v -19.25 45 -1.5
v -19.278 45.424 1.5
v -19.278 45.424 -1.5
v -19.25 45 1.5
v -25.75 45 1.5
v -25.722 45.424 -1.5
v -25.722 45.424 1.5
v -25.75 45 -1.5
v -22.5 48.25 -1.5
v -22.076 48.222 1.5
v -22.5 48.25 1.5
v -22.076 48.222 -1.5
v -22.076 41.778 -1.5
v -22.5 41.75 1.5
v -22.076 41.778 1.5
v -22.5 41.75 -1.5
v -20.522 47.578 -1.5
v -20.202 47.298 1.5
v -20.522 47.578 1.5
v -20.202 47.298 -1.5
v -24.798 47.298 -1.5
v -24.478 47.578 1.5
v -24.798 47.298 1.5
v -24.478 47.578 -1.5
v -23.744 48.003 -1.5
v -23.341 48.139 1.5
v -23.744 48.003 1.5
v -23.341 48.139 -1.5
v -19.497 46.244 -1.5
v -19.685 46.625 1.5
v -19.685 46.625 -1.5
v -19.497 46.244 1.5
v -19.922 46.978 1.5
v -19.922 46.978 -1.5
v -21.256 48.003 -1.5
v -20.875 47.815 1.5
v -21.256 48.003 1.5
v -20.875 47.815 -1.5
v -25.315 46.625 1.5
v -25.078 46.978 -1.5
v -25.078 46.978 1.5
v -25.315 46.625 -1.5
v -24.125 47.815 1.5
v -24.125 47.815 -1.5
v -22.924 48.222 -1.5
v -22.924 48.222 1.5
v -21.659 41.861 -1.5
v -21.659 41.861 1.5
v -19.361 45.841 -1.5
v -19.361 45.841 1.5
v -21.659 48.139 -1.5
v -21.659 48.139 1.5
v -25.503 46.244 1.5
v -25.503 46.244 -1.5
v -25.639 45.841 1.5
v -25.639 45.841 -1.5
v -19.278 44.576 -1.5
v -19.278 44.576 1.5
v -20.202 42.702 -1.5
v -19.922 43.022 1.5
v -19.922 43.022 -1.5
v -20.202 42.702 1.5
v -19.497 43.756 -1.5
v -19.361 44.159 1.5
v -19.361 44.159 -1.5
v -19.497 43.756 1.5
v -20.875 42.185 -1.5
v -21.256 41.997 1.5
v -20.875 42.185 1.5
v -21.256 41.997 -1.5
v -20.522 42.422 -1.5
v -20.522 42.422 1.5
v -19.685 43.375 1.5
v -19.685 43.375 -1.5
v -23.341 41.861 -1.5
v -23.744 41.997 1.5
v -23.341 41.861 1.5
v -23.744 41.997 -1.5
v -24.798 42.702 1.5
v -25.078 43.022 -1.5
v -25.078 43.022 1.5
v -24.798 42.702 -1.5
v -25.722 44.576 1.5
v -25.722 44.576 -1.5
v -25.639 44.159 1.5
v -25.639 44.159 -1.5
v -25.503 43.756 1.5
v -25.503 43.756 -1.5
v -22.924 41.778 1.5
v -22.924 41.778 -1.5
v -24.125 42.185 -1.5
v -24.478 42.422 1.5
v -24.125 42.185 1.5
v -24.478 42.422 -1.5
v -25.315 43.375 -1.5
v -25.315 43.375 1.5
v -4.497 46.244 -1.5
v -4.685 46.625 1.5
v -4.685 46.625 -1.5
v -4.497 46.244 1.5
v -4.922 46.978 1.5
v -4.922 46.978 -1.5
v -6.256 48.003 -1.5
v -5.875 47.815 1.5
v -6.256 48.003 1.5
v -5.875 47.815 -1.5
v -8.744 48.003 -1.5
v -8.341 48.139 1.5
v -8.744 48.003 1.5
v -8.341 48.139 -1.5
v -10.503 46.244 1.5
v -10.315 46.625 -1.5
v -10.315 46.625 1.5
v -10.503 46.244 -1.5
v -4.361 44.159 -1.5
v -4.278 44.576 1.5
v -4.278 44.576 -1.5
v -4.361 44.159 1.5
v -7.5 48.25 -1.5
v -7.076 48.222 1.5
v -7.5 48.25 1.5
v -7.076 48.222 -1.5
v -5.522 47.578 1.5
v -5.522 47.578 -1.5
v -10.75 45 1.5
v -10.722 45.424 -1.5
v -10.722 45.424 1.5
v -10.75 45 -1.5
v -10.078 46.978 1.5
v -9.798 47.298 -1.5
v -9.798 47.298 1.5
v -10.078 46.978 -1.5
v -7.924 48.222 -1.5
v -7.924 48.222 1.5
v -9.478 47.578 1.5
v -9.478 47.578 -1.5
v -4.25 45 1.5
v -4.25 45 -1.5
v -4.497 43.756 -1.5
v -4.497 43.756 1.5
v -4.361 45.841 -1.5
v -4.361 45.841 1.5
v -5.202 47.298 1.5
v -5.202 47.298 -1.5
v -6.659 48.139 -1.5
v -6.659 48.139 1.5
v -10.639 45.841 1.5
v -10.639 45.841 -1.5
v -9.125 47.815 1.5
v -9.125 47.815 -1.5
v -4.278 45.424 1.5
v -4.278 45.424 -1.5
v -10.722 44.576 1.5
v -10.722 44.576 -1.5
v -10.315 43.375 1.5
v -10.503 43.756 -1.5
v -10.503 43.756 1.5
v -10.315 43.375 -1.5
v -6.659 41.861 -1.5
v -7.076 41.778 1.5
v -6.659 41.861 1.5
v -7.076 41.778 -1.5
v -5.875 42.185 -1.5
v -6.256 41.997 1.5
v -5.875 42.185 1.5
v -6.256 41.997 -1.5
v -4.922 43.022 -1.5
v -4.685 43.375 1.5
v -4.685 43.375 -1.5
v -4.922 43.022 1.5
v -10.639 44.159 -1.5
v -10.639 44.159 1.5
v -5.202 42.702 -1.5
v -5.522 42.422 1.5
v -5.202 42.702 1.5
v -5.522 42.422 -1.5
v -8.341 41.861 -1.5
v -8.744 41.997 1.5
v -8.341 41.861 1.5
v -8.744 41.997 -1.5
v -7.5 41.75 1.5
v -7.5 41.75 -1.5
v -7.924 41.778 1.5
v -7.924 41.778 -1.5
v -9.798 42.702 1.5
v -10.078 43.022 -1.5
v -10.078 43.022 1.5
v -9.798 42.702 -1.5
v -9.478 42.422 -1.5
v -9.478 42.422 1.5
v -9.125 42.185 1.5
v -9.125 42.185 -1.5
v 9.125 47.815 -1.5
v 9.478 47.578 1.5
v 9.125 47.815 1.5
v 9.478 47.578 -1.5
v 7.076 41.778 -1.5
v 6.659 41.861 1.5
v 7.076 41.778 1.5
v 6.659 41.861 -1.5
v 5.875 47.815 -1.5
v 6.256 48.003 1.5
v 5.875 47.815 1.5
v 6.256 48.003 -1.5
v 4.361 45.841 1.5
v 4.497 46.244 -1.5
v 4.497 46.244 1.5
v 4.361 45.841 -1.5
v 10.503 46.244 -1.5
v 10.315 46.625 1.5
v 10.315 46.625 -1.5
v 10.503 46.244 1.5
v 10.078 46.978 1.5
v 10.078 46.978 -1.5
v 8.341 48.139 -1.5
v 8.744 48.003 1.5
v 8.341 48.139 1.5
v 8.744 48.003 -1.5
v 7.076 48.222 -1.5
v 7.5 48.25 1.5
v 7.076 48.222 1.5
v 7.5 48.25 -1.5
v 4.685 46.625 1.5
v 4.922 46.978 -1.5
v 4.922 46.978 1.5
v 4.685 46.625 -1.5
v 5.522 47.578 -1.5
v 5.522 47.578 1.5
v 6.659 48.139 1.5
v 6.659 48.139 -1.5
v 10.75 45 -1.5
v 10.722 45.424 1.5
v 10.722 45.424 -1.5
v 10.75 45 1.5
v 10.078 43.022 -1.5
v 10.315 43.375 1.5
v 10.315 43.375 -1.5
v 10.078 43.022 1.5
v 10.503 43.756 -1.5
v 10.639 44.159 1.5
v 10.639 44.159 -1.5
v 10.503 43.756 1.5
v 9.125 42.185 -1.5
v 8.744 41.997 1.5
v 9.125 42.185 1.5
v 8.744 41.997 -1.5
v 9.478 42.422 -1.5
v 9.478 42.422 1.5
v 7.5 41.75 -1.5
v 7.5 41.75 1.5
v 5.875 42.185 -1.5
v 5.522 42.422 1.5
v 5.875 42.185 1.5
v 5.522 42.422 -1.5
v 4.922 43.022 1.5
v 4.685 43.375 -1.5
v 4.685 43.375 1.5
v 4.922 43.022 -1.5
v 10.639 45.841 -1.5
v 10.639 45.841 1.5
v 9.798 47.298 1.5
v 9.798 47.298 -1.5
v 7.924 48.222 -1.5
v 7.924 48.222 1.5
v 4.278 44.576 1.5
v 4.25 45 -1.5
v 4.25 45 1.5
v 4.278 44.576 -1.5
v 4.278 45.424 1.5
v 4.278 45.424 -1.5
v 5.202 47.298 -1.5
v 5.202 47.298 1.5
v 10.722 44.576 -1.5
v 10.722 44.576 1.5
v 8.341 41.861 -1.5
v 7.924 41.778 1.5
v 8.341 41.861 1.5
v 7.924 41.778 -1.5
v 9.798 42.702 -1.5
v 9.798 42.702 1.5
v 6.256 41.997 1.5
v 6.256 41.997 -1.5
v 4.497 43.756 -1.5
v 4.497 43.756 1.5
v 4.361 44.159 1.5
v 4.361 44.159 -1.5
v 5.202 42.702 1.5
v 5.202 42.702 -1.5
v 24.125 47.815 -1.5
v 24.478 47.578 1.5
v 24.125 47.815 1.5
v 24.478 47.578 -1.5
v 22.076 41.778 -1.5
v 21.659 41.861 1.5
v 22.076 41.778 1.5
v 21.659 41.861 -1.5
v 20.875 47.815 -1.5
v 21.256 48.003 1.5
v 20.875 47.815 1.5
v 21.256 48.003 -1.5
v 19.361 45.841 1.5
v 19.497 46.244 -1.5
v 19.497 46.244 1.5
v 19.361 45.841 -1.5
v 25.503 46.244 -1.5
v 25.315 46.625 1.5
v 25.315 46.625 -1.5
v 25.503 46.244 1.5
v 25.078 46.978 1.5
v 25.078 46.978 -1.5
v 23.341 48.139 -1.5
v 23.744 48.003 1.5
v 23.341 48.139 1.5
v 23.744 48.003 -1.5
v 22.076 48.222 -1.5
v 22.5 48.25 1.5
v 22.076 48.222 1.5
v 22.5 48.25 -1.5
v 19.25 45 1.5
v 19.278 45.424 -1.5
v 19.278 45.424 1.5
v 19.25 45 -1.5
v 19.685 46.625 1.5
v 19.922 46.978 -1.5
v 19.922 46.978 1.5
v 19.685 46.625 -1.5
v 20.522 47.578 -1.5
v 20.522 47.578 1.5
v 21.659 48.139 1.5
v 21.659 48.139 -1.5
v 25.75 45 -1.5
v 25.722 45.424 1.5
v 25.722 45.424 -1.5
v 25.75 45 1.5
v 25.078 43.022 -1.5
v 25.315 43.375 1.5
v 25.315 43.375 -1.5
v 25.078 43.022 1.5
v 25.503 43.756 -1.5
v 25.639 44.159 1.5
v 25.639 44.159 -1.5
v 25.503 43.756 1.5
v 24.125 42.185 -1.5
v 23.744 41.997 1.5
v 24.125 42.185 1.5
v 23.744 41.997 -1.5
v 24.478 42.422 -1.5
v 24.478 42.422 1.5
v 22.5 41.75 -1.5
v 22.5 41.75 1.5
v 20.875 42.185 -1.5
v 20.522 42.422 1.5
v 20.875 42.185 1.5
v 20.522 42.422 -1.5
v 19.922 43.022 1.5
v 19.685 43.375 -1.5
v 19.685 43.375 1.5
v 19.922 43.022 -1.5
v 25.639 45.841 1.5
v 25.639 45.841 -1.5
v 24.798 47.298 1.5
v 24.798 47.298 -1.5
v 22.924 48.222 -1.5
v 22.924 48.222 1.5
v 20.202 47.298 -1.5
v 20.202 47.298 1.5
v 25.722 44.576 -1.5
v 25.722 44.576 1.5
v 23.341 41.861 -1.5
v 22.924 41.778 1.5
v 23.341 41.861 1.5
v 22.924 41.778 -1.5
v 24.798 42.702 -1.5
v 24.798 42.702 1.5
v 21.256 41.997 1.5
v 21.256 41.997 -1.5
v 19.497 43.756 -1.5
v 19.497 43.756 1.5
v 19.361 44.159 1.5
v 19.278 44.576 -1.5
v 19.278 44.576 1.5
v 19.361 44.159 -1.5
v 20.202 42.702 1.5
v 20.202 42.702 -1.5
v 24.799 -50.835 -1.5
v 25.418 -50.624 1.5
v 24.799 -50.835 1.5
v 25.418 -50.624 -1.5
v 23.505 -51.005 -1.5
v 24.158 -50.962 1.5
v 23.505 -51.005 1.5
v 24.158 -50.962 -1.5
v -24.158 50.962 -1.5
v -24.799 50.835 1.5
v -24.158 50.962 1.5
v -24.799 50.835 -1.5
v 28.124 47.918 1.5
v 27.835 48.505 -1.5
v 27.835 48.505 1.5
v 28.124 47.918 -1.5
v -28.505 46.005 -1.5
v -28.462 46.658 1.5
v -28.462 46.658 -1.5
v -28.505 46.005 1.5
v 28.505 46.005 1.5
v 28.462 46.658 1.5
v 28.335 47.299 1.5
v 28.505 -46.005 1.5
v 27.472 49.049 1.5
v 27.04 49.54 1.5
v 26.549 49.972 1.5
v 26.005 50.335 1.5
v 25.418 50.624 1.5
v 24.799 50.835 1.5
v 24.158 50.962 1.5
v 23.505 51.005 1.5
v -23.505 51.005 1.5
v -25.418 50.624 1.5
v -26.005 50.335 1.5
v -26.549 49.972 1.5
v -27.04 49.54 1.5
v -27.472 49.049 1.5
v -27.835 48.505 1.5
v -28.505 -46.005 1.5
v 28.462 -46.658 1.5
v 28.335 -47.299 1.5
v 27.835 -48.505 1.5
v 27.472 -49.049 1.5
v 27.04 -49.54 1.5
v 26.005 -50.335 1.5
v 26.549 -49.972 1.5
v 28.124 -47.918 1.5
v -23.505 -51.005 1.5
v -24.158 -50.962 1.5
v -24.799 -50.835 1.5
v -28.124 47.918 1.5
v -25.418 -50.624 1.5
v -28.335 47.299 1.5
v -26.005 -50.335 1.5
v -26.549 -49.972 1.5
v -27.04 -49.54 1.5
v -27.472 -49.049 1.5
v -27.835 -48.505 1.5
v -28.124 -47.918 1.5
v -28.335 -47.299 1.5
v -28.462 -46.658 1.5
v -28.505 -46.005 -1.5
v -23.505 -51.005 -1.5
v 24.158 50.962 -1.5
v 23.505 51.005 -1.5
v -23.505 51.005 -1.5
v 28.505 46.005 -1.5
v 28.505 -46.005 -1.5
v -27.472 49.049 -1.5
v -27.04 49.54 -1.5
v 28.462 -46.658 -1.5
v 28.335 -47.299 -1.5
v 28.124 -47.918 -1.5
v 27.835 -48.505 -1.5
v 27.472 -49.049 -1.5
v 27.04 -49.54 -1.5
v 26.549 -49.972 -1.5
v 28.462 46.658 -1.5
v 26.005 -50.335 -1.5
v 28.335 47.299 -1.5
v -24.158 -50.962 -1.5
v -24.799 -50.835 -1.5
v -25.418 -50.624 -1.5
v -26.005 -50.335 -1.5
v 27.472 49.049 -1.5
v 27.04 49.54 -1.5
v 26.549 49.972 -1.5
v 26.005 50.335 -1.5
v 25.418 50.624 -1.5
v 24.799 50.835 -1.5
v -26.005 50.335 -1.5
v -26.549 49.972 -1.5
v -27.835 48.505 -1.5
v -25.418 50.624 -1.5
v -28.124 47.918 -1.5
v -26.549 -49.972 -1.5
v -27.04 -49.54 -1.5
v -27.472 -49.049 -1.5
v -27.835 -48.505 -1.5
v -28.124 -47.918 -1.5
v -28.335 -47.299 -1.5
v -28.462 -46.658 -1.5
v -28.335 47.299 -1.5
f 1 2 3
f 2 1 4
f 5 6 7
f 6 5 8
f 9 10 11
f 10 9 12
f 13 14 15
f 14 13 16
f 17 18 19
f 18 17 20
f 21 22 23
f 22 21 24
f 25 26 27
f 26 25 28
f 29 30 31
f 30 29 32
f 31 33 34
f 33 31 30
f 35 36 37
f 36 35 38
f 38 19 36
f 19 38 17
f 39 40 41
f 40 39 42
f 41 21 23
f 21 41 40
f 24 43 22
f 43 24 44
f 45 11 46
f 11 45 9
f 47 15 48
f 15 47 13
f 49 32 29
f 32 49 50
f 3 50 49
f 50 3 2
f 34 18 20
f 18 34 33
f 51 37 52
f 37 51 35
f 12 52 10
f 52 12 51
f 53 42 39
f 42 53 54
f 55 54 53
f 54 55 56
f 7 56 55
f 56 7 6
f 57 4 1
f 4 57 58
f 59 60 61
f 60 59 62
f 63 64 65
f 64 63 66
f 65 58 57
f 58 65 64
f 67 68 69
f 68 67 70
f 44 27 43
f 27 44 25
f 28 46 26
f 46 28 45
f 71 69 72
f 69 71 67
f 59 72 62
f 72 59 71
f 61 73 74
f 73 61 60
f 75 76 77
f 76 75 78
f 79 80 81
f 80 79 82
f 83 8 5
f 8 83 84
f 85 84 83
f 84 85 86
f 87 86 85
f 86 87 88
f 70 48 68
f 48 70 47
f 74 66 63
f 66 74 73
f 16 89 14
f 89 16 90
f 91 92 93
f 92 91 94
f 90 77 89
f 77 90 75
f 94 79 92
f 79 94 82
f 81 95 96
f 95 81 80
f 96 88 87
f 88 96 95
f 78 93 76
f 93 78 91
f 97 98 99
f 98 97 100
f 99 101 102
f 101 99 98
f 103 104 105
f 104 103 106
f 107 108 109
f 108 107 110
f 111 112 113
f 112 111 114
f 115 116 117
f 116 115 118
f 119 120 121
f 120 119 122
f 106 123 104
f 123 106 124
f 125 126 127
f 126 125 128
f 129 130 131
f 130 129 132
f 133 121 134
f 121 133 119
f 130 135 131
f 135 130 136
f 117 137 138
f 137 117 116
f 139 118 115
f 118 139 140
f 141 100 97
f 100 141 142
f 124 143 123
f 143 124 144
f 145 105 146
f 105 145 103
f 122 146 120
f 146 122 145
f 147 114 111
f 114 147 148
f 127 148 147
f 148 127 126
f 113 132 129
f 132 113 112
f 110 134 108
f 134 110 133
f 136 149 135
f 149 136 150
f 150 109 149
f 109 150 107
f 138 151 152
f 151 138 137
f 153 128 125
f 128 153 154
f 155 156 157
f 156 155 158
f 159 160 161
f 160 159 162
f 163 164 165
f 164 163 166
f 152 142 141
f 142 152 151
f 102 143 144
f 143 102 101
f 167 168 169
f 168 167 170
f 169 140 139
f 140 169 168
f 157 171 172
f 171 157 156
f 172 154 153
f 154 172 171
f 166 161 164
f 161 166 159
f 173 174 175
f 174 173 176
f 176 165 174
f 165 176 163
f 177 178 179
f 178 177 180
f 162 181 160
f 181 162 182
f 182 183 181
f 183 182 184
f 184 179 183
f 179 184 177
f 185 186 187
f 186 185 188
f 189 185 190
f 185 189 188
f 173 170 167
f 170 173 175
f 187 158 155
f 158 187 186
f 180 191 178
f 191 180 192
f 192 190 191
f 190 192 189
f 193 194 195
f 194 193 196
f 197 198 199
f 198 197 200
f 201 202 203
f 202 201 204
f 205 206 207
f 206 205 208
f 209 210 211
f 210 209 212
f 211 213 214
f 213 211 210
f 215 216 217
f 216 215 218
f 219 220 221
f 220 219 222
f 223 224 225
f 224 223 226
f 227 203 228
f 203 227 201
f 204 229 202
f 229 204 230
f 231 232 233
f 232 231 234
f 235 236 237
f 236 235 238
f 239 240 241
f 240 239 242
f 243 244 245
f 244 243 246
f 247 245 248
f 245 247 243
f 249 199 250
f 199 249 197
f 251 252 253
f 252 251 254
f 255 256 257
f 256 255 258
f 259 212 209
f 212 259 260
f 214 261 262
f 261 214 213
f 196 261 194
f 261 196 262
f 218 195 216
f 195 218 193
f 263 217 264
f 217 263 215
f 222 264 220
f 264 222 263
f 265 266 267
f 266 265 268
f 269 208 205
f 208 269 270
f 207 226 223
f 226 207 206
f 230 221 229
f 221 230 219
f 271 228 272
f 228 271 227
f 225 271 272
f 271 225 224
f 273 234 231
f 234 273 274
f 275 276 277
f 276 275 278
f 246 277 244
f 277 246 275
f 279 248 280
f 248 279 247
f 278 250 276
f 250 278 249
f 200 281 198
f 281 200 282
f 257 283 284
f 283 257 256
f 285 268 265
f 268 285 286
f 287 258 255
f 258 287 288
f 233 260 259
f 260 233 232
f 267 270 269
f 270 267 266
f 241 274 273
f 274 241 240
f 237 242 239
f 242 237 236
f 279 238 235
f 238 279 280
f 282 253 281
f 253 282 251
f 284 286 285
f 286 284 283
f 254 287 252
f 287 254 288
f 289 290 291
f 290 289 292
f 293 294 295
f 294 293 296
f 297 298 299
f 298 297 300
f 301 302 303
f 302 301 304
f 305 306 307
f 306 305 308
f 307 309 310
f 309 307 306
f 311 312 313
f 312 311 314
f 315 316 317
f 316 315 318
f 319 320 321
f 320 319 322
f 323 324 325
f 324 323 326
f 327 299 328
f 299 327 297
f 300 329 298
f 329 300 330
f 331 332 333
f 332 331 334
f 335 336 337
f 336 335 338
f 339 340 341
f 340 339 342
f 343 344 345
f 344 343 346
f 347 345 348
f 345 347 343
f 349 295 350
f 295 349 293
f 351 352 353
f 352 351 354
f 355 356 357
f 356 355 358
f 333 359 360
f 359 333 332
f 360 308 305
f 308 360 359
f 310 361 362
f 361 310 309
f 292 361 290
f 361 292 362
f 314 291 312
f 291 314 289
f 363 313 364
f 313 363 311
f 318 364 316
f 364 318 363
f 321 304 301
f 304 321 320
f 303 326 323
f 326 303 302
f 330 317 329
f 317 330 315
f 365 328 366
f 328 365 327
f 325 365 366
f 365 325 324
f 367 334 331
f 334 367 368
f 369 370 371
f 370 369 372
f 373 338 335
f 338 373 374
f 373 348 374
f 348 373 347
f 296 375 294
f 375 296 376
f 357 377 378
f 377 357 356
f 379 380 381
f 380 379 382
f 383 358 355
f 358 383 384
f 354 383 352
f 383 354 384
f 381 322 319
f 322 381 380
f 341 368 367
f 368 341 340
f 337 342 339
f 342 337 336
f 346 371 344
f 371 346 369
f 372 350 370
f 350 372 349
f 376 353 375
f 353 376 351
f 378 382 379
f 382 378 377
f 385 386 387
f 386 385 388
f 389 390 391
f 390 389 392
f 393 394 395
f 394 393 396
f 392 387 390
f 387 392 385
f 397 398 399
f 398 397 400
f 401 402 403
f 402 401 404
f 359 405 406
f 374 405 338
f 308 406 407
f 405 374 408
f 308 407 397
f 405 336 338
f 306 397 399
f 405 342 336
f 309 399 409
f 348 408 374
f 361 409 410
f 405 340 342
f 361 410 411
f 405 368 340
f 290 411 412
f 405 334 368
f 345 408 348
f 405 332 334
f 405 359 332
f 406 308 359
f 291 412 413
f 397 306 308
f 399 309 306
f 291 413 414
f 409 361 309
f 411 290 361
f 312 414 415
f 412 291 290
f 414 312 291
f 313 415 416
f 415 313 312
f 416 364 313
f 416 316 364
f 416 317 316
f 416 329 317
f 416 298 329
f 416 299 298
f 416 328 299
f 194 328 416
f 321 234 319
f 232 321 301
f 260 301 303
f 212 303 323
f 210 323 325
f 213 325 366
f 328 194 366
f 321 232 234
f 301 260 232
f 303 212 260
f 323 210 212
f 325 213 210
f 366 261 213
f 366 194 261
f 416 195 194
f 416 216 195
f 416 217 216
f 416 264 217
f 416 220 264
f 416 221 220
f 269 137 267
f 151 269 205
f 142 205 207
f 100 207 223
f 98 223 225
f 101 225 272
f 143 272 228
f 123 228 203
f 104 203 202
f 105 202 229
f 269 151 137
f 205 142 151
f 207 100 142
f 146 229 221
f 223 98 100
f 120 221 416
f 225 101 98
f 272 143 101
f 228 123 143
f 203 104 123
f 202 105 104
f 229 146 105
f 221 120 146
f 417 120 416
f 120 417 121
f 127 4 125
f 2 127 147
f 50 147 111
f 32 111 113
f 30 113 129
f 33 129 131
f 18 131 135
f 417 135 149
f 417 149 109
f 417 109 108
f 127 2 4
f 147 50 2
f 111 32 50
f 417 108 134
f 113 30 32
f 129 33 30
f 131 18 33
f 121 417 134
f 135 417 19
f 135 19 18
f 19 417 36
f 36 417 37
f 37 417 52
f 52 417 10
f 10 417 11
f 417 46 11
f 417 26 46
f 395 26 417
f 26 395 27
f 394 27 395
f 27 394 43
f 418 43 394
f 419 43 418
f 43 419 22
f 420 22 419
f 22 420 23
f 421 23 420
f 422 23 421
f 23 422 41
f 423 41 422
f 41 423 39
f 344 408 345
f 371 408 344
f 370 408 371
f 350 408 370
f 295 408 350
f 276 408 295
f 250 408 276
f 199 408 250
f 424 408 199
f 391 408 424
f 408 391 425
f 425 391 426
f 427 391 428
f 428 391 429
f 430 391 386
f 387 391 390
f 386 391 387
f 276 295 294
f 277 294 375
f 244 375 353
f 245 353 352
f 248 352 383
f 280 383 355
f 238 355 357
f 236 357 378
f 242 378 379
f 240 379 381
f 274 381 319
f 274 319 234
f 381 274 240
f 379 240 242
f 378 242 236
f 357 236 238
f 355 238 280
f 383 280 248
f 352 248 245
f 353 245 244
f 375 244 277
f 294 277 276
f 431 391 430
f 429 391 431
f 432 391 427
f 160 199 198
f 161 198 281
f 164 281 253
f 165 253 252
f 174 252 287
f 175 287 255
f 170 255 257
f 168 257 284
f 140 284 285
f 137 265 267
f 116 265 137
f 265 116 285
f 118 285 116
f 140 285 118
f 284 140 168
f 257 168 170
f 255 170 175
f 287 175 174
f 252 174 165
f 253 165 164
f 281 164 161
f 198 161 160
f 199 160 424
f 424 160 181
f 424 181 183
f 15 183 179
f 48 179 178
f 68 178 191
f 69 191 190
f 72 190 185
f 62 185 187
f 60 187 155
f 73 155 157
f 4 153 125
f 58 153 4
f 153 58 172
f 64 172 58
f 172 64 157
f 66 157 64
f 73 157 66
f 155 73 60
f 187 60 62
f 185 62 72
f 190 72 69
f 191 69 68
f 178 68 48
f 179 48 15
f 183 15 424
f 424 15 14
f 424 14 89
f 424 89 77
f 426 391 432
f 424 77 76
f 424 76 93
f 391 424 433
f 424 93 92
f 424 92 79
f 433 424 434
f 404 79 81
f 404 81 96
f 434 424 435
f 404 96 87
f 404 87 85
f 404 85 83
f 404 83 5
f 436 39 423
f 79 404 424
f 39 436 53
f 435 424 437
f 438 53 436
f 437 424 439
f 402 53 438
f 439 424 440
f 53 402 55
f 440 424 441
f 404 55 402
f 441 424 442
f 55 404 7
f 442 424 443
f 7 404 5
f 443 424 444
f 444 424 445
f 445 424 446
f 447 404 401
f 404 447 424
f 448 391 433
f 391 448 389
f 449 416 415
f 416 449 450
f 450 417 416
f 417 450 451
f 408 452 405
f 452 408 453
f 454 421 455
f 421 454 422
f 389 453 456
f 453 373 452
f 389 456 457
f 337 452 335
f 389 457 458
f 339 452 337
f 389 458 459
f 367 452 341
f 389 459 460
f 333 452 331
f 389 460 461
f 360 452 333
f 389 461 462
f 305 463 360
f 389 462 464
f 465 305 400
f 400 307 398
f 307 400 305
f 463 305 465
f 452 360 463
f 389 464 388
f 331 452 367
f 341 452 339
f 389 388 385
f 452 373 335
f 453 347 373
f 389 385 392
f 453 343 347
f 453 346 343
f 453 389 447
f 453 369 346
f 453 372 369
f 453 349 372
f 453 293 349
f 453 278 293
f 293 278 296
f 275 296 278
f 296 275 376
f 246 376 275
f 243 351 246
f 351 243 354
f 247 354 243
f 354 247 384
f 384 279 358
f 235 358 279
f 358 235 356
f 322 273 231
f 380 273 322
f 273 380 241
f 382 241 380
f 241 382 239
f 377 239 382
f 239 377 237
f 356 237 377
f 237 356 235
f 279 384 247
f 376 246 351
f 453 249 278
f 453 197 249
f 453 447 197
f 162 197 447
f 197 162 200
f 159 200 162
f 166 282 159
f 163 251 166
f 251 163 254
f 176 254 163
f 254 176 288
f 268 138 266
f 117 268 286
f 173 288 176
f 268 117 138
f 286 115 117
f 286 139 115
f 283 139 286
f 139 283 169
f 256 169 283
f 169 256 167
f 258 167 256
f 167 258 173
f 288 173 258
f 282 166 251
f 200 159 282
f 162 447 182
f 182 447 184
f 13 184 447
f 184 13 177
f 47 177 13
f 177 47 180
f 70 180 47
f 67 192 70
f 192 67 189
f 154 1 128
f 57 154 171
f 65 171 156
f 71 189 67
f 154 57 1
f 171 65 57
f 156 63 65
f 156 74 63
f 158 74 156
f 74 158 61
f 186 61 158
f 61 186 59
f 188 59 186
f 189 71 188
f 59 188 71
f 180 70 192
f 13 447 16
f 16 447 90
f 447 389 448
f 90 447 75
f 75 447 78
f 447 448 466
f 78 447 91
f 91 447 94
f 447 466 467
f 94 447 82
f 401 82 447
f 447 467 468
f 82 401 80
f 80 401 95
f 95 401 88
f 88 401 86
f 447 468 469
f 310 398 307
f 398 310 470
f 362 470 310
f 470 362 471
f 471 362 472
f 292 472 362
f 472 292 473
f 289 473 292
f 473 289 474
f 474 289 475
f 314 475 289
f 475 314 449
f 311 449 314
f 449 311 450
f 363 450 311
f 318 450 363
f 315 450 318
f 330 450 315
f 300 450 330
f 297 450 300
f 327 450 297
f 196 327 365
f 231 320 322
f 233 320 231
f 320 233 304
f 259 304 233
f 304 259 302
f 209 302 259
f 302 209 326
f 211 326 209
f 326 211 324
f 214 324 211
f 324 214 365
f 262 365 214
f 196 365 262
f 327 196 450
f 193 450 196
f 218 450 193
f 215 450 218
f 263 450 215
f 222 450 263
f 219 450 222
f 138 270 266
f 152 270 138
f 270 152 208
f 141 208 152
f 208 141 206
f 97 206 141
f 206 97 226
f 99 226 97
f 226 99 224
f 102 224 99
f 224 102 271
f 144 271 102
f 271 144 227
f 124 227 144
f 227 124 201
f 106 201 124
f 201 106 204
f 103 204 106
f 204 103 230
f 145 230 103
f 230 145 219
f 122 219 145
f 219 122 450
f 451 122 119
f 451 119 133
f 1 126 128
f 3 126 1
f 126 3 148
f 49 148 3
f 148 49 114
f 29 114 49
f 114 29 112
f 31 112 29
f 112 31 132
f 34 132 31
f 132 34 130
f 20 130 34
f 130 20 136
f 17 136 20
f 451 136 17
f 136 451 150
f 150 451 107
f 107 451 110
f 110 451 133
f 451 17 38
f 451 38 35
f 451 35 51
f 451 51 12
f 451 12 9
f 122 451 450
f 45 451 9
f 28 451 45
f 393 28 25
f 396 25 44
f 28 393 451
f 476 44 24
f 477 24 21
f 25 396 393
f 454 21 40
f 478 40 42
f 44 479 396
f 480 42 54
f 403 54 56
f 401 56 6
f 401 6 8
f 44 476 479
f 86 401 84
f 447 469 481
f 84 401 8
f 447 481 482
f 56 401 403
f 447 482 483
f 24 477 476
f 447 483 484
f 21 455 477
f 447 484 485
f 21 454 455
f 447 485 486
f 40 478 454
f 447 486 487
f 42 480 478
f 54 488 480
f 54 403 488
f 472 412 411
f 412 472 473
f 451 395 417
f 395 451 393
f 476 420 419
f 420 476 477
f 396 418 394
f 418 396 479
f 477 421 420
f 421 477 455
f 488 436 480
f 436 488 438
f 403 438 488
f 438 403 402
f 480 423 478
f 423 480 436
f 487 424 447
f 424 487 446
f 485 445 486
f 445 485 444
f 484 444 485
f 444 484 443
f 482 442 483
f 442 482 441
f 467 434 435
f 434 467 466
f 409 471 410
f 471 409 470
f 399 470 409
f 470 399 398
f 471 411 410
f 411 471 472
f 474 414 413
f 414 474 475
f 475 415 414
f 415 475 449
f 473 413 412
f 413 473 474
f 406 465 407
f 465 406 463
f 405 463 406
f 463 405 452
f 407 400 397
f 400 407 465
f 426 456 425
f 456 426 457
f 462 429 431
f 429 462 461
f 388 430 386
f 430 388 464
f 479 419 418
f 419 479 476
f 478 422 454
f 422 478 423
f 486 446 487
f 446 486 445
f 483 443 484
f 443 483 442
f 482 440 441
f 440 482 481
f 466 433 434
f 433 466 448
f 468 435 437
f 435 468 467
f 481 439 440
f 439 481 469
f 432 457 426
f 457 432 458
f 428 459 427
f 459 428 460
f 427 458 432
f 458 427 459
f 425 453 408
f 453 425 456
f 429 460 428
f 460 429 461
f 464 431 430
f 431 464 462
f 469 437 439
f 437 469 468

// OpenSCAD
// Generated by SolidPython 1.1.3 on 2022-09-15 13:19:46
$fn = 48;


difference() {
	union() {
		color(alpha = 1.0000000000, c = "Gold") {
			translate(v = [0, 0, 1.5000000000]) {
				rotate(a = [0, 0, 0]) {
					translate(v = [0, 0, -3]) {
						linear_extrude(height = 3) {
							offset(r = 5) {
								square(center = true, size = [47.0100000000, 92.0100000000]);
							}
						}
					}
				}
			}
		}
	}
	union() {
		color(alpha = 1.0000000000, c = "Gold") {
			translate(v = [-22.5000000000, 45.0000000000, 0]) {
				rotate(a = [0, 0, 0]) {
					translate(v = [0, 0, -250]) {
						cylinder(h = 500, r = 3.2500000000);
					}
				}
			}
		}
		color(alpha = 1.0000000000, c = "Gold") {
			translate(v = [-7.5000000000, 45.0000000000, 0]) {
				rotate(a = [0, 0, 0]) {
					translate(v = [0, 0, -250]) {
						cylinder(h = 500, r = 3.2500000000);
					}
				}
			}
		}
		color(alpha = 1.0000000000, c = "Gold") {
			translate(v = [7.5000000000, 45.0000000000, 0]) {
				rotate(a = [0, 0, 0]) {
					translate(v = [0, 0, -250]) {
						cylinder(h = 500, r = 3.2500000000);
					}
				}
			}
		}
		color(alpha = 1.0000000000, c = "Gold") {
			translate(v = [22.5000000000, 45.0000000000, 0]) {
				rotate(a = [0, 0, 0]) {
					translate(v = [0, 0, -250]) {
						cylinder(h = 500, r = 3.2500000000);
					}
				}
			}
		}
	}
}
/***********************************************
*********      SolidPython code:      **********
************************************************
 
import subprocess

from solid.objects import *
from solid import scad_render_to_file, scad_render

import math

import os

##################################################################################################################################################
##################################################################################################################################################
##################################################################################################################################################
##################################################################################################################################################
######  DIMENSION STUFF
##################################################################################################################################################
##################################################################################################################################################
##################################################################################################################################################
##################################################################################################################################################


mode = "3DPR"
#mode = "LAZE"
#mode = "TURE"
#mode = ""


######  Countersunk
countersunkM = []
WIDTH = 0
DEPTH = 1
countersunkM1width = 0; countersunkM1depth = 0; countersunkM2width = 0; countersunkM2depth = 0
countersunkM3width = 0
countersunkM3depth = 0
countersunkM4width = 0
countersunkM4depth = 0
countersunkM5width = 0
countersunkM5depth = 0
countersunkM6width = 0
countersunkM6depth = 0

######  Holes
holeM = []
holeM1 = 0
holeM2 = 0
holeM3 = 0
holeM4 = 0
holeM5 = 0
holeM6 = 0

######  Nuts
nutM = []
NUTWIDTH = 0
NUTDEPTH = 1
nutM1width = 0
nutM1depth = 0
nutM2width = 0
nutM2depth = 0
nutM3width = 0
nutM3depth = 0
nutM4width = 0
nutM4depth = 0
nutM5width = 0
nutM5depth = 0
nutM6width = 0
nutM6depth = 0

######  OOEB
ooebPinWidth = 0
ooebPinWidthWide = 0


######  Colors
colDefault = "Gold"

colOOEBbase = colDefault

colLEDRed = "red"
colWire = "gray"
    ######  Resistor
colRes = list()
colResistor = "beige"

colResBlack = "black"
colRes.append(colResBlack)
colResBrown = "brown"
colRes.append(colResBrown)
colResRed = "red"
colRes.append(colResRed)
colResOrange = "orange"
colRes.append(colResOrange)
colResYellow = "yellow"
colRes.append(colResYellow)
colResGreen = "green"
colRes.append(colResGreen)
colResBlue = "blue"
colRes.append(colResBlue)
colResPurple = "purple"
colRes.append(colResPurple)
colResGray = "gray"
colRes.append(colResGray)
colResWhite = "white"
colRes.append(colResWhite)





def changeMode(m="3DPR"):
    #print("####################################################      CHANGING MODES TO: " + m)
    global mode
    mode = m
    ######  Countersunk
    global countersunkM, countersunkM1width, countersunkM1depth, countersunkM2width, countersunkM2depth, countersunkM3width, countersunkM3depth, countersunkM4width, countersunkM4depth, countersunkM5width, countersunkM5depth, countersunkM6width, countersunkM6depth
    countersunkM = []
    countersunkM.append([0,0])
    countersunkM1width = 0 if mode== "3DPR" else 0
    countersunkM1depth = 0 if mode== "3DPR" else 0
    countersunkM.append([countersunkM1width,countersunkM1depth])
    countersunkM2width = 0 if mode== "3DPR" else 0
    countersunkM2depth = 0 if mode== "3DPR" else 0
    countersunkM.append([countersunkM2width,countersunkM2depth])
    countersunkM3width = 5.5/2+0.6 if mode== "3DPR" else 5.5/2
    countersunkM3depth = 1.7 if mode== "3DPR" else 1.7
    countersunkM.append([countersunkM3width,countersunkM3depth])
    countersunkM4width = 0 if mode== "3DPR" else 0
    countersunkM4depth = 0 if mode== "3DPR" else 0
    countersunkM.append([countersunkM4width,countersunkM4depth])
    countersunkM5width = 0 if mode== "3DPR" else 0
    countersunkM5depth = 0 if mode== "3DPR" else 0
    countersunkM.append([countersunkM5width,countersunkM5depth])
    countersunkM6width = 0 if mode== "3DPR" else 0
    countersunkM6depth = 0 if mode== "3DPR" else 0
    countersunkM.append([countersunkM6width,countersunkM6depth])
    ######  Holes
    global holeM, holeM1, holeM2, holeM3, holeM4, holeM5, holeM6, holeM7, holeM8
    holeM = []
    holeM1 = 1.2/2 if mode== "3DPR" else 1/2
    holeM2 = 2.3/2 if mode== "3DPR" else 2/2
    holeM3 = 3.4/2 if mode== "3DPR" else 3/2
    holeM4 = 4.4/2 if mode== "3DPR" else 4/2
    holeM5 = 5.4/2 if mode== "3DPR" else 5/2
    holeM6 = 6.5/2 if mode== "3DPR" else 6/2
    holeM7 = 7.5/2 if mode== "3DPR" else 7/2
    holeM8 = 8.6/2 if mode== "3DPR" else 8/2
    holeM.append(0)
    holeM.append(holeM1)
    holeM.append(holeM2)
    holeM.append(holeM3)
    holeM.append(holeM4)
    holeM.append(holeM5)
    holeM.append(holeM6)
    holeM.append(holeM7)
    holeM.append(holeM8)
    #####  Nuts
    global nutM, nutM1width, nutM1depth, nutM2width, nutM2depth, nutM3width, nutM3depth, nutM4width, nutM4depth, nutM5width, nutM5depth, nutM6width, nutM6depth
    nutM = []
    nutM.append([0,0]) 
    #M1 Nut
    nutM1width = 0
    nutM1depth = 0
    nutM.append([nutM1width,nutM1depth])    
    #M2 Nut
    nutM2width = 0
    nutM2depth = 0
    nutM.append([nutM2width,nutM2depth])    
    #M3 Nut
    #nutM3width = 6.05 if mode== "3DPR" else 5.5
    nutM3width = 6.05 * 1.154 if mode== "3DPR" else 5.5 * 1.154
    nutM3depth = 2.5 if mode== "3DPR" else 2.5
    nutM.append([nutM3width,nutM3depth])    
    #M4 Nut
    nutM4width = 0
    nutM4depth = 0
    nutM.append([nutM4width,nutM4depth])    
    #M5 Nut
    nutM5width = 0
    nutM5depth = 0
    nutM.append([nutM5width,nutM5depth])    
    #M6 Nut
    nutM6width = 11 if mode== "3DPR" else 10
    nutM6depth = 5 if mode== "3DPR" else 5
    nutM.append([nutM6width,nutM6depth])    

    ######  OOEB
    global ooebPinWidth,  ooebPinWidthWide

    ooebPinWidth = 0.6
    if(mode=="3DPR" or mode=="LAZE"):
        ooebPinWidth = 0.6 + 0.6
    ooebPinWidthWide = 1.2
    if(mode=="3DPR" or mode=="LAZE"):
        ooebPinWidthWide = 1.2 + 0.6


changeMode()


""""    
holeM12D = s=="3DPR" ? 1.4/2 : 1.2/2;
holeM16D = s=="3DPR" ? 1.8/2 : 1.6/2;
holeM2 = s=="3DPR" ? 2.3/2 : 2/2;
holeM25D = s=="3DPR" ? 2.8/2 : 2.5/2;
holeM27D = s=="3DPR" ? 3.1/2 : 2.7/2;    
holeM3 = s=="3DPR" ? 3.4/2 : 3/2;
holeM35D = s=="3DPR" ? 3.9/2 : 35/2;
holeM4 = s=="3DPR" ? 4.4/2 : 4/2;
holeM5 = s=="3DPR" ? 5.4/2 : 5/2;
holeM6 = s=="3DPR" ? 6.5/2 : 6/2;
holeM6Minus = s=="3DPR" ? 5.8/2 : 5.9/2;
holeM7 = s=="3DPR" ? 7.5/2 : 7/2;
holeM8 = s=="3DPR" ? 8.6/2 : 8/2;
holeM9 = s=="3DPR" ? 9.6/2 : 9/2;
holeM10 = s=="3DPR" ? 10.6/2 : 10/2;
holeM11 = s=="3DPR" ? 11.6/2 : 11/2;
holeM12 = s=="3DPR" ? 12.6/2 : 12/2;
holeM13 = s=="3DPR" ? 13.6/2 : 13/2;
holeM14 = s=="3DPR" ? 14.6/2 : 14/2;
holeM15 = s=="3DPR" ? 15.6/2 : 15/2;
holeM16 = s=="3DPR" ? 16.6/2 : 16/2;
holeM17 = s=="3DPR" ? 17.6/2 : 17/2;
holeM18 = s=="3DPR" ? 18.6/2 : 18/2;
holeM19 = s=="3DPR" ? 19.6/2 : 19/2;
holeM20 = s=="3DPR" ? 20.6/2 : 20/2;
"""

##################################################################################################################################################
##################################################################################################################################################
##################################################################################################################################################
##################################################################################################################################################
######  REGULAR STUFF
##################################################################################################################################################
##################################################################################################################################################
##################################################################################################################################################
##################################################################################################################################################


def setMode(mode="3DPR"):
    changeMode(mode)

def getMode():
    return mode



def saveToScad(fileName, parts):
    dir =  os.path.dirname(os.path.abspath(fileName))
    Path(dir).mkdir(parents=True, exist_ok=True)
    file_out = scad_render_to_file(parts, fileName, file_header=f'$fn = 48;')


def saveToDxf(fileIn, fileOut=""):
    if fileOut == "":
        fileOut = fileIn.replace(".scad",".dxf")
    saveToFile(fileIn, fileOut)
    
def saveToPng(fileIn, fileOut="",extra="--render"):
    if fileOut == "":
        fileOut = fileIn.replace(".scad",".png")
    saveToFile(fileIn, fileOut)

def saveToStl(fileIn, fileOut=""):
    if fileOut == "":
        fileOut = fileIn.replace(".scad",".stl")
    saveToFile(fileIn, fileOut)
    
def saveToSvg(fileIn, fileOut=""):
    if fileOut == "":
        fileOut = fileIn.replace(".scad",".svg")
    saveToFile(fileIn, fileOut)

def saveToFile(fileIn, fileOut,extra=""):
    extra = extra + " --colorscheme Tomorrow"

    launchStr = 'openscad -o "' + fileOut + '"' + extra + ' "' + fileIn + '"'
    if ".png" in fileOut:
        launchStr = launchStr + " --render"
    print("            saveToFile launch string: " + launchStr)
    subprocess.run(launchStr)
    x=0



def insert(item,pos=[None,None,None],x=0,y=0,z=0,ex=0,size=[None,None,None],length=0,rot=[None,None,None],rotX=0,rotY=0,rotZ=0,width=0,height=0,depth=100,rad=0,rad2=0,color=colDefault,alpha=1,OOwidth=0,OOheight=0,holes=True,negative=True, name="",m=""):
    return OPSCInsert(item,pos,x,y,z,ex,size,length,rot,rotX,rotY,rotZ,width,height,depth,rad,rad2,color,alpha,OOwidth,OOheight,holes,negative,name,m=m)


def OPSCInsert(item,pos=[None,None,None],x=0,y=0,z=0,ex=0,size=[None,None,None],length=0,rot=[None,None,None],rotX=0,rotY=0,rotZ=0,width=0,height=0,depth=100,rad=0,rad2=0,col=colDefault,alpha=1,OOwidth=0,OOheight=0,holes=True,negative=True, name="",m=""):
    
    """
        color(color,alpha){
            translate([x,y,z]){
                    rotate([rotX,rotY,rotZ]){
    """
    returnValue = ""

    #print(pos)

    if pos[0] != None:
        x=pos[0]
        y=pos[1]
        z=pos[2]
    if rot[0] != None:
        rotX=rot[0]
        rotY=rot[1]
        rotZ=rot[2]
    
    returnValue = color(col)(translate((x,y,z))(
                            rotate((rotX,rotY,rotZ))(
                                OPSCInsertIf(item,pos,x,y,z,ex,size,length,rot,rotX,rotY,rotZ,width,height,depth,rad,rad2,col,alpha,OOwidth,OOheight,holes,negative,name,m=m)
                            )
                        ))
                
    

    return returnValue

def OPSCInsertIf(item,pos=[None,None,None],x=0,y=0,z=0,ex=0,size=[None,None,None],length=0,rot=[None,None,None],rotX=0,rotY=0,rotZ=0,width=0,height=0,depth=100,rad=0,rad2=0,color=colDefault,alpha=1,OOwidth=0,OOheight=0,holes=True,negative=True, name="",m=""):
    returnValue = cube([10,10,10])

    if size[0] != None:
        width=size[0]
        height=size[1]
        depth=size[2]

    #print("    OPSCInsert item:" + str(item) + " at:[" + str(x) + "," + str(y) + "," + str(z) + "] size: [" + str(width) + "," + str(height) + "," + str(depth) + "]")

    if(item=="cube"):
        returnValue =  translate([0,0,-depth/2])(cube([width,height,depth],center=True).set_modifier(m))
    elif(item=="cylinder"):        
        returnValue = translate([0,0,-depth/2])(cylinder(r=rad,h=depth,center=True).set_modifier(m))
    elif(item=="sphere"):        
        returnValue = translate([0,0,-rad])(sphere(r=rad).set_modifier(m))
    elif(item=="plane"):
        if depth == 100:
            returnValue = insert("cube",size=[1000,1000,0.1],color=color).set_modifier(m)            
        else:
            returnValue = insert("cube",size=[1000,1000,depth],color=color).set_modifier(m)                        
    elif(item=="cubeRounded"):
        if(rad == 0):
                            rad = 5
        returnValue =  translate([0,0,-depth])(
                        linear_extrude(height=depth)(                        
                            offset(r=rad)(
                                square((width-rad*2+.01,height-rad*2+.01),center=True).set_modifier(m)
                                )
                            )
        )
    ######  Countersunk
    elif(item == "countersunkM1" or item == "csM1" ):
        returnValue = OSPCgetCountersunk(rad=1,m=m)
    elif(item == "countersunkM2" or item == "csM2" ):
        returnValue = OSPCgetCountersunk(rad=2,m=m)
    elif(item == "countersunkM3" or item == "csM3" ):
        returnValue = OSPCgetCountersunk(rad=3,m=m)
    elif(item == "countersunkM4" or item == "csM4" ):
        returnValue = OSPCgetCountersunk(rad=4,m=m)
    elif(item == "countersunkM5" or item == "csM5" ):
        returnValue = OSPCgetCountersunk(rad=5,m=m)
    elif(item == "countersunkM6" or item == "csM6" ):
        returnValue = OSPCgetCountersunk(rad=6,m=m)
    elif(item == "countersunk" or item == "cs"):
        returnValue = OSPCgetCountersunk(rad=rad,m=m)


    ######  Holes    
    elif(item == "holeM1"):
        returnValue = OSPCgetHole(rad=1,m=m)
    elif(item == "holeM2"):
        returnValue = OSPCgetHole(rad=2,m=m)
    elif(item == "holeM3"):
        returnValue = OSPCgetHole(rad=3,m=m)
    elif(item == "holeM4"):
        returnValue = OSPCgetHole(rad=4,m=m)
    elif(item == "holeM5"):
        returnValue = OSPCgetHole(rad=5,m=m)
    elif(item == "holeM6"):
        returnValue = OSPCgetHole(rad=6,m=m)
    elif(item == "holeM7"):
        returnValue = OSPCgetHole(rad=7,m=m)
    elif(item == "holeM8"):
        returnValue = OSPCgetHole(rad=8,m=m)
    elif(item == "hole"):
        returnValue = OSPCgetHole(rad=rad,m=m)

    ######  Nuts
    elif(item == "nutM1"):
        returnValue = OSPCgetNut(rad=1,depth=depth,m=m)
    elif(item == "nutM2"):
        returnValue = OSPCgetNut(rad=2,depth=depth,m=m)
    elif(item == "nutM3"):
        returnValue = OSPCgetNut(rad=3,depth=depth,m=m)
    elif(item == "nutM4"):
        returnValue = OSPCgetNut(rad=4,depth=depth,m=m)
    elif(item == "nutM5"):
        returnValue = OSPCgetNut(rad=5,depth=depth,m=m)
    elif(item == "nutM6"):
        returnValue = OSPCgetNut(rad=6,depth=depth,m=m)
    elif(item == "nut"):
        returnValue = OSPCgetNut(rad=rad,depth=depth,m=m)
    return returnValue

                

def OSPCgetHole(rad,m=""):
    return translate([0,0,-250])(cylinder(r=holeM[rad],h=500).set_modifier(m))

def OSPCgetNut(rad,depth,m=""):
    depth = nutM[rad][NUTDEPTH] if depth==100 else depth
    returnValue = OPSChexagon(nutM[rad][NUTWIDTH],depth=depth,m=m)
    return returnValue

def OSPCgetCountersunk(rad,m=""):
    depth=countersunkM[rad][DEPTH]
    returnValue = translate([0,0,-depth])(cylinder(h=depth,r2=countersunkM[rad][WIDTH],r1=holeM[rad])).set_modifier(m)
    return returnValue

def OPSChexagon(width,depth,m=""):
    angles = []
    for a in range(0,6):
        angles.append((a*360/6)+30)
    points = []
    for angle in angles:
        x = math.cos((math.pi/180)*angle)*(width/2)
        y = math.sin((math.pi/180)*angle)*(width/2)
        points.append([x,y])

        rv = polygon(points)
        rv = linear_extrude(height=depth)(rv)
        rv = translate([0,0,-depth])(rv)
        rv = rv.set_modifier(m)

    return rv

def OPSChexagonOld(width,depth,m=""):
    cutter = item()
    wid=width*2
    cutter.addPos(insert("cube",pos=[wid/2+width/2,0,0],size=[wid,wid,depth]))
    cutter.addPos(insert("cube",pos=[-wid/2-width/2,0,0],size=[wid,wid,depth]))

    cut = cutter.getPart()
    #print(depth)
    returnValue = difference()(
        translate([0,0,-depth/2])(cube([wid,wid,depth],center=True)),
        cut,
        rotate([0,0,60])(cut),
        rotate([0,0,-60])(cut)
    ).set_modifier(m)

    return returnValue

class item:

    def __init__(self):
        self.posItems=list()
        self.negItems=list()

    def isEmpty(self):        
        testString = scad_render(self.getPart())
        #print("test String length: " + str(len(testString)))
        returnValue = False
        if len(testString) == 270:            
            returnValue = True
        return returnValue

    def addPos(self,part):
        self.posItems.append(part)
    def addNeg(self,part):
        self.negItems.append(part)

    def getPart(self):
        returnValue = difference()(
            union()(self.posItems),
            union()(self.negItems)
        )
        return returnValue

    def getLaser(self,start=0,layers=1,thickness=-3,tileDif=200):
        rv= []

        for x in range(layers):
            rv.append(translate([0,x*tileDif,0])(
                    projection()(
                        intersection()(
                            insert("plane",z=start+x*thickness),
                            self.getPart()
                        )
                    )
            )
            )
        return union()(rv)

    def getSplit(self,start=0,depth=6,tileDif=200):
        rv= []

        rv.append(translate([0,0,0])(
            intersection()(
                insert("cube",size=[100,100,depth],z=start),
                self.getPart()
            )
        )
        )

        rv.append(translate([0,0,depth])(rotate([180,0,0])(translate([0,tileDif,depth])(
            intersection()(
                insert("cube",size=[100,100,depth],z=start-depth),
                self.getPart()
            )
        )
        )
        )
        )        
        return union()(rv)


 
 
************************************************/
